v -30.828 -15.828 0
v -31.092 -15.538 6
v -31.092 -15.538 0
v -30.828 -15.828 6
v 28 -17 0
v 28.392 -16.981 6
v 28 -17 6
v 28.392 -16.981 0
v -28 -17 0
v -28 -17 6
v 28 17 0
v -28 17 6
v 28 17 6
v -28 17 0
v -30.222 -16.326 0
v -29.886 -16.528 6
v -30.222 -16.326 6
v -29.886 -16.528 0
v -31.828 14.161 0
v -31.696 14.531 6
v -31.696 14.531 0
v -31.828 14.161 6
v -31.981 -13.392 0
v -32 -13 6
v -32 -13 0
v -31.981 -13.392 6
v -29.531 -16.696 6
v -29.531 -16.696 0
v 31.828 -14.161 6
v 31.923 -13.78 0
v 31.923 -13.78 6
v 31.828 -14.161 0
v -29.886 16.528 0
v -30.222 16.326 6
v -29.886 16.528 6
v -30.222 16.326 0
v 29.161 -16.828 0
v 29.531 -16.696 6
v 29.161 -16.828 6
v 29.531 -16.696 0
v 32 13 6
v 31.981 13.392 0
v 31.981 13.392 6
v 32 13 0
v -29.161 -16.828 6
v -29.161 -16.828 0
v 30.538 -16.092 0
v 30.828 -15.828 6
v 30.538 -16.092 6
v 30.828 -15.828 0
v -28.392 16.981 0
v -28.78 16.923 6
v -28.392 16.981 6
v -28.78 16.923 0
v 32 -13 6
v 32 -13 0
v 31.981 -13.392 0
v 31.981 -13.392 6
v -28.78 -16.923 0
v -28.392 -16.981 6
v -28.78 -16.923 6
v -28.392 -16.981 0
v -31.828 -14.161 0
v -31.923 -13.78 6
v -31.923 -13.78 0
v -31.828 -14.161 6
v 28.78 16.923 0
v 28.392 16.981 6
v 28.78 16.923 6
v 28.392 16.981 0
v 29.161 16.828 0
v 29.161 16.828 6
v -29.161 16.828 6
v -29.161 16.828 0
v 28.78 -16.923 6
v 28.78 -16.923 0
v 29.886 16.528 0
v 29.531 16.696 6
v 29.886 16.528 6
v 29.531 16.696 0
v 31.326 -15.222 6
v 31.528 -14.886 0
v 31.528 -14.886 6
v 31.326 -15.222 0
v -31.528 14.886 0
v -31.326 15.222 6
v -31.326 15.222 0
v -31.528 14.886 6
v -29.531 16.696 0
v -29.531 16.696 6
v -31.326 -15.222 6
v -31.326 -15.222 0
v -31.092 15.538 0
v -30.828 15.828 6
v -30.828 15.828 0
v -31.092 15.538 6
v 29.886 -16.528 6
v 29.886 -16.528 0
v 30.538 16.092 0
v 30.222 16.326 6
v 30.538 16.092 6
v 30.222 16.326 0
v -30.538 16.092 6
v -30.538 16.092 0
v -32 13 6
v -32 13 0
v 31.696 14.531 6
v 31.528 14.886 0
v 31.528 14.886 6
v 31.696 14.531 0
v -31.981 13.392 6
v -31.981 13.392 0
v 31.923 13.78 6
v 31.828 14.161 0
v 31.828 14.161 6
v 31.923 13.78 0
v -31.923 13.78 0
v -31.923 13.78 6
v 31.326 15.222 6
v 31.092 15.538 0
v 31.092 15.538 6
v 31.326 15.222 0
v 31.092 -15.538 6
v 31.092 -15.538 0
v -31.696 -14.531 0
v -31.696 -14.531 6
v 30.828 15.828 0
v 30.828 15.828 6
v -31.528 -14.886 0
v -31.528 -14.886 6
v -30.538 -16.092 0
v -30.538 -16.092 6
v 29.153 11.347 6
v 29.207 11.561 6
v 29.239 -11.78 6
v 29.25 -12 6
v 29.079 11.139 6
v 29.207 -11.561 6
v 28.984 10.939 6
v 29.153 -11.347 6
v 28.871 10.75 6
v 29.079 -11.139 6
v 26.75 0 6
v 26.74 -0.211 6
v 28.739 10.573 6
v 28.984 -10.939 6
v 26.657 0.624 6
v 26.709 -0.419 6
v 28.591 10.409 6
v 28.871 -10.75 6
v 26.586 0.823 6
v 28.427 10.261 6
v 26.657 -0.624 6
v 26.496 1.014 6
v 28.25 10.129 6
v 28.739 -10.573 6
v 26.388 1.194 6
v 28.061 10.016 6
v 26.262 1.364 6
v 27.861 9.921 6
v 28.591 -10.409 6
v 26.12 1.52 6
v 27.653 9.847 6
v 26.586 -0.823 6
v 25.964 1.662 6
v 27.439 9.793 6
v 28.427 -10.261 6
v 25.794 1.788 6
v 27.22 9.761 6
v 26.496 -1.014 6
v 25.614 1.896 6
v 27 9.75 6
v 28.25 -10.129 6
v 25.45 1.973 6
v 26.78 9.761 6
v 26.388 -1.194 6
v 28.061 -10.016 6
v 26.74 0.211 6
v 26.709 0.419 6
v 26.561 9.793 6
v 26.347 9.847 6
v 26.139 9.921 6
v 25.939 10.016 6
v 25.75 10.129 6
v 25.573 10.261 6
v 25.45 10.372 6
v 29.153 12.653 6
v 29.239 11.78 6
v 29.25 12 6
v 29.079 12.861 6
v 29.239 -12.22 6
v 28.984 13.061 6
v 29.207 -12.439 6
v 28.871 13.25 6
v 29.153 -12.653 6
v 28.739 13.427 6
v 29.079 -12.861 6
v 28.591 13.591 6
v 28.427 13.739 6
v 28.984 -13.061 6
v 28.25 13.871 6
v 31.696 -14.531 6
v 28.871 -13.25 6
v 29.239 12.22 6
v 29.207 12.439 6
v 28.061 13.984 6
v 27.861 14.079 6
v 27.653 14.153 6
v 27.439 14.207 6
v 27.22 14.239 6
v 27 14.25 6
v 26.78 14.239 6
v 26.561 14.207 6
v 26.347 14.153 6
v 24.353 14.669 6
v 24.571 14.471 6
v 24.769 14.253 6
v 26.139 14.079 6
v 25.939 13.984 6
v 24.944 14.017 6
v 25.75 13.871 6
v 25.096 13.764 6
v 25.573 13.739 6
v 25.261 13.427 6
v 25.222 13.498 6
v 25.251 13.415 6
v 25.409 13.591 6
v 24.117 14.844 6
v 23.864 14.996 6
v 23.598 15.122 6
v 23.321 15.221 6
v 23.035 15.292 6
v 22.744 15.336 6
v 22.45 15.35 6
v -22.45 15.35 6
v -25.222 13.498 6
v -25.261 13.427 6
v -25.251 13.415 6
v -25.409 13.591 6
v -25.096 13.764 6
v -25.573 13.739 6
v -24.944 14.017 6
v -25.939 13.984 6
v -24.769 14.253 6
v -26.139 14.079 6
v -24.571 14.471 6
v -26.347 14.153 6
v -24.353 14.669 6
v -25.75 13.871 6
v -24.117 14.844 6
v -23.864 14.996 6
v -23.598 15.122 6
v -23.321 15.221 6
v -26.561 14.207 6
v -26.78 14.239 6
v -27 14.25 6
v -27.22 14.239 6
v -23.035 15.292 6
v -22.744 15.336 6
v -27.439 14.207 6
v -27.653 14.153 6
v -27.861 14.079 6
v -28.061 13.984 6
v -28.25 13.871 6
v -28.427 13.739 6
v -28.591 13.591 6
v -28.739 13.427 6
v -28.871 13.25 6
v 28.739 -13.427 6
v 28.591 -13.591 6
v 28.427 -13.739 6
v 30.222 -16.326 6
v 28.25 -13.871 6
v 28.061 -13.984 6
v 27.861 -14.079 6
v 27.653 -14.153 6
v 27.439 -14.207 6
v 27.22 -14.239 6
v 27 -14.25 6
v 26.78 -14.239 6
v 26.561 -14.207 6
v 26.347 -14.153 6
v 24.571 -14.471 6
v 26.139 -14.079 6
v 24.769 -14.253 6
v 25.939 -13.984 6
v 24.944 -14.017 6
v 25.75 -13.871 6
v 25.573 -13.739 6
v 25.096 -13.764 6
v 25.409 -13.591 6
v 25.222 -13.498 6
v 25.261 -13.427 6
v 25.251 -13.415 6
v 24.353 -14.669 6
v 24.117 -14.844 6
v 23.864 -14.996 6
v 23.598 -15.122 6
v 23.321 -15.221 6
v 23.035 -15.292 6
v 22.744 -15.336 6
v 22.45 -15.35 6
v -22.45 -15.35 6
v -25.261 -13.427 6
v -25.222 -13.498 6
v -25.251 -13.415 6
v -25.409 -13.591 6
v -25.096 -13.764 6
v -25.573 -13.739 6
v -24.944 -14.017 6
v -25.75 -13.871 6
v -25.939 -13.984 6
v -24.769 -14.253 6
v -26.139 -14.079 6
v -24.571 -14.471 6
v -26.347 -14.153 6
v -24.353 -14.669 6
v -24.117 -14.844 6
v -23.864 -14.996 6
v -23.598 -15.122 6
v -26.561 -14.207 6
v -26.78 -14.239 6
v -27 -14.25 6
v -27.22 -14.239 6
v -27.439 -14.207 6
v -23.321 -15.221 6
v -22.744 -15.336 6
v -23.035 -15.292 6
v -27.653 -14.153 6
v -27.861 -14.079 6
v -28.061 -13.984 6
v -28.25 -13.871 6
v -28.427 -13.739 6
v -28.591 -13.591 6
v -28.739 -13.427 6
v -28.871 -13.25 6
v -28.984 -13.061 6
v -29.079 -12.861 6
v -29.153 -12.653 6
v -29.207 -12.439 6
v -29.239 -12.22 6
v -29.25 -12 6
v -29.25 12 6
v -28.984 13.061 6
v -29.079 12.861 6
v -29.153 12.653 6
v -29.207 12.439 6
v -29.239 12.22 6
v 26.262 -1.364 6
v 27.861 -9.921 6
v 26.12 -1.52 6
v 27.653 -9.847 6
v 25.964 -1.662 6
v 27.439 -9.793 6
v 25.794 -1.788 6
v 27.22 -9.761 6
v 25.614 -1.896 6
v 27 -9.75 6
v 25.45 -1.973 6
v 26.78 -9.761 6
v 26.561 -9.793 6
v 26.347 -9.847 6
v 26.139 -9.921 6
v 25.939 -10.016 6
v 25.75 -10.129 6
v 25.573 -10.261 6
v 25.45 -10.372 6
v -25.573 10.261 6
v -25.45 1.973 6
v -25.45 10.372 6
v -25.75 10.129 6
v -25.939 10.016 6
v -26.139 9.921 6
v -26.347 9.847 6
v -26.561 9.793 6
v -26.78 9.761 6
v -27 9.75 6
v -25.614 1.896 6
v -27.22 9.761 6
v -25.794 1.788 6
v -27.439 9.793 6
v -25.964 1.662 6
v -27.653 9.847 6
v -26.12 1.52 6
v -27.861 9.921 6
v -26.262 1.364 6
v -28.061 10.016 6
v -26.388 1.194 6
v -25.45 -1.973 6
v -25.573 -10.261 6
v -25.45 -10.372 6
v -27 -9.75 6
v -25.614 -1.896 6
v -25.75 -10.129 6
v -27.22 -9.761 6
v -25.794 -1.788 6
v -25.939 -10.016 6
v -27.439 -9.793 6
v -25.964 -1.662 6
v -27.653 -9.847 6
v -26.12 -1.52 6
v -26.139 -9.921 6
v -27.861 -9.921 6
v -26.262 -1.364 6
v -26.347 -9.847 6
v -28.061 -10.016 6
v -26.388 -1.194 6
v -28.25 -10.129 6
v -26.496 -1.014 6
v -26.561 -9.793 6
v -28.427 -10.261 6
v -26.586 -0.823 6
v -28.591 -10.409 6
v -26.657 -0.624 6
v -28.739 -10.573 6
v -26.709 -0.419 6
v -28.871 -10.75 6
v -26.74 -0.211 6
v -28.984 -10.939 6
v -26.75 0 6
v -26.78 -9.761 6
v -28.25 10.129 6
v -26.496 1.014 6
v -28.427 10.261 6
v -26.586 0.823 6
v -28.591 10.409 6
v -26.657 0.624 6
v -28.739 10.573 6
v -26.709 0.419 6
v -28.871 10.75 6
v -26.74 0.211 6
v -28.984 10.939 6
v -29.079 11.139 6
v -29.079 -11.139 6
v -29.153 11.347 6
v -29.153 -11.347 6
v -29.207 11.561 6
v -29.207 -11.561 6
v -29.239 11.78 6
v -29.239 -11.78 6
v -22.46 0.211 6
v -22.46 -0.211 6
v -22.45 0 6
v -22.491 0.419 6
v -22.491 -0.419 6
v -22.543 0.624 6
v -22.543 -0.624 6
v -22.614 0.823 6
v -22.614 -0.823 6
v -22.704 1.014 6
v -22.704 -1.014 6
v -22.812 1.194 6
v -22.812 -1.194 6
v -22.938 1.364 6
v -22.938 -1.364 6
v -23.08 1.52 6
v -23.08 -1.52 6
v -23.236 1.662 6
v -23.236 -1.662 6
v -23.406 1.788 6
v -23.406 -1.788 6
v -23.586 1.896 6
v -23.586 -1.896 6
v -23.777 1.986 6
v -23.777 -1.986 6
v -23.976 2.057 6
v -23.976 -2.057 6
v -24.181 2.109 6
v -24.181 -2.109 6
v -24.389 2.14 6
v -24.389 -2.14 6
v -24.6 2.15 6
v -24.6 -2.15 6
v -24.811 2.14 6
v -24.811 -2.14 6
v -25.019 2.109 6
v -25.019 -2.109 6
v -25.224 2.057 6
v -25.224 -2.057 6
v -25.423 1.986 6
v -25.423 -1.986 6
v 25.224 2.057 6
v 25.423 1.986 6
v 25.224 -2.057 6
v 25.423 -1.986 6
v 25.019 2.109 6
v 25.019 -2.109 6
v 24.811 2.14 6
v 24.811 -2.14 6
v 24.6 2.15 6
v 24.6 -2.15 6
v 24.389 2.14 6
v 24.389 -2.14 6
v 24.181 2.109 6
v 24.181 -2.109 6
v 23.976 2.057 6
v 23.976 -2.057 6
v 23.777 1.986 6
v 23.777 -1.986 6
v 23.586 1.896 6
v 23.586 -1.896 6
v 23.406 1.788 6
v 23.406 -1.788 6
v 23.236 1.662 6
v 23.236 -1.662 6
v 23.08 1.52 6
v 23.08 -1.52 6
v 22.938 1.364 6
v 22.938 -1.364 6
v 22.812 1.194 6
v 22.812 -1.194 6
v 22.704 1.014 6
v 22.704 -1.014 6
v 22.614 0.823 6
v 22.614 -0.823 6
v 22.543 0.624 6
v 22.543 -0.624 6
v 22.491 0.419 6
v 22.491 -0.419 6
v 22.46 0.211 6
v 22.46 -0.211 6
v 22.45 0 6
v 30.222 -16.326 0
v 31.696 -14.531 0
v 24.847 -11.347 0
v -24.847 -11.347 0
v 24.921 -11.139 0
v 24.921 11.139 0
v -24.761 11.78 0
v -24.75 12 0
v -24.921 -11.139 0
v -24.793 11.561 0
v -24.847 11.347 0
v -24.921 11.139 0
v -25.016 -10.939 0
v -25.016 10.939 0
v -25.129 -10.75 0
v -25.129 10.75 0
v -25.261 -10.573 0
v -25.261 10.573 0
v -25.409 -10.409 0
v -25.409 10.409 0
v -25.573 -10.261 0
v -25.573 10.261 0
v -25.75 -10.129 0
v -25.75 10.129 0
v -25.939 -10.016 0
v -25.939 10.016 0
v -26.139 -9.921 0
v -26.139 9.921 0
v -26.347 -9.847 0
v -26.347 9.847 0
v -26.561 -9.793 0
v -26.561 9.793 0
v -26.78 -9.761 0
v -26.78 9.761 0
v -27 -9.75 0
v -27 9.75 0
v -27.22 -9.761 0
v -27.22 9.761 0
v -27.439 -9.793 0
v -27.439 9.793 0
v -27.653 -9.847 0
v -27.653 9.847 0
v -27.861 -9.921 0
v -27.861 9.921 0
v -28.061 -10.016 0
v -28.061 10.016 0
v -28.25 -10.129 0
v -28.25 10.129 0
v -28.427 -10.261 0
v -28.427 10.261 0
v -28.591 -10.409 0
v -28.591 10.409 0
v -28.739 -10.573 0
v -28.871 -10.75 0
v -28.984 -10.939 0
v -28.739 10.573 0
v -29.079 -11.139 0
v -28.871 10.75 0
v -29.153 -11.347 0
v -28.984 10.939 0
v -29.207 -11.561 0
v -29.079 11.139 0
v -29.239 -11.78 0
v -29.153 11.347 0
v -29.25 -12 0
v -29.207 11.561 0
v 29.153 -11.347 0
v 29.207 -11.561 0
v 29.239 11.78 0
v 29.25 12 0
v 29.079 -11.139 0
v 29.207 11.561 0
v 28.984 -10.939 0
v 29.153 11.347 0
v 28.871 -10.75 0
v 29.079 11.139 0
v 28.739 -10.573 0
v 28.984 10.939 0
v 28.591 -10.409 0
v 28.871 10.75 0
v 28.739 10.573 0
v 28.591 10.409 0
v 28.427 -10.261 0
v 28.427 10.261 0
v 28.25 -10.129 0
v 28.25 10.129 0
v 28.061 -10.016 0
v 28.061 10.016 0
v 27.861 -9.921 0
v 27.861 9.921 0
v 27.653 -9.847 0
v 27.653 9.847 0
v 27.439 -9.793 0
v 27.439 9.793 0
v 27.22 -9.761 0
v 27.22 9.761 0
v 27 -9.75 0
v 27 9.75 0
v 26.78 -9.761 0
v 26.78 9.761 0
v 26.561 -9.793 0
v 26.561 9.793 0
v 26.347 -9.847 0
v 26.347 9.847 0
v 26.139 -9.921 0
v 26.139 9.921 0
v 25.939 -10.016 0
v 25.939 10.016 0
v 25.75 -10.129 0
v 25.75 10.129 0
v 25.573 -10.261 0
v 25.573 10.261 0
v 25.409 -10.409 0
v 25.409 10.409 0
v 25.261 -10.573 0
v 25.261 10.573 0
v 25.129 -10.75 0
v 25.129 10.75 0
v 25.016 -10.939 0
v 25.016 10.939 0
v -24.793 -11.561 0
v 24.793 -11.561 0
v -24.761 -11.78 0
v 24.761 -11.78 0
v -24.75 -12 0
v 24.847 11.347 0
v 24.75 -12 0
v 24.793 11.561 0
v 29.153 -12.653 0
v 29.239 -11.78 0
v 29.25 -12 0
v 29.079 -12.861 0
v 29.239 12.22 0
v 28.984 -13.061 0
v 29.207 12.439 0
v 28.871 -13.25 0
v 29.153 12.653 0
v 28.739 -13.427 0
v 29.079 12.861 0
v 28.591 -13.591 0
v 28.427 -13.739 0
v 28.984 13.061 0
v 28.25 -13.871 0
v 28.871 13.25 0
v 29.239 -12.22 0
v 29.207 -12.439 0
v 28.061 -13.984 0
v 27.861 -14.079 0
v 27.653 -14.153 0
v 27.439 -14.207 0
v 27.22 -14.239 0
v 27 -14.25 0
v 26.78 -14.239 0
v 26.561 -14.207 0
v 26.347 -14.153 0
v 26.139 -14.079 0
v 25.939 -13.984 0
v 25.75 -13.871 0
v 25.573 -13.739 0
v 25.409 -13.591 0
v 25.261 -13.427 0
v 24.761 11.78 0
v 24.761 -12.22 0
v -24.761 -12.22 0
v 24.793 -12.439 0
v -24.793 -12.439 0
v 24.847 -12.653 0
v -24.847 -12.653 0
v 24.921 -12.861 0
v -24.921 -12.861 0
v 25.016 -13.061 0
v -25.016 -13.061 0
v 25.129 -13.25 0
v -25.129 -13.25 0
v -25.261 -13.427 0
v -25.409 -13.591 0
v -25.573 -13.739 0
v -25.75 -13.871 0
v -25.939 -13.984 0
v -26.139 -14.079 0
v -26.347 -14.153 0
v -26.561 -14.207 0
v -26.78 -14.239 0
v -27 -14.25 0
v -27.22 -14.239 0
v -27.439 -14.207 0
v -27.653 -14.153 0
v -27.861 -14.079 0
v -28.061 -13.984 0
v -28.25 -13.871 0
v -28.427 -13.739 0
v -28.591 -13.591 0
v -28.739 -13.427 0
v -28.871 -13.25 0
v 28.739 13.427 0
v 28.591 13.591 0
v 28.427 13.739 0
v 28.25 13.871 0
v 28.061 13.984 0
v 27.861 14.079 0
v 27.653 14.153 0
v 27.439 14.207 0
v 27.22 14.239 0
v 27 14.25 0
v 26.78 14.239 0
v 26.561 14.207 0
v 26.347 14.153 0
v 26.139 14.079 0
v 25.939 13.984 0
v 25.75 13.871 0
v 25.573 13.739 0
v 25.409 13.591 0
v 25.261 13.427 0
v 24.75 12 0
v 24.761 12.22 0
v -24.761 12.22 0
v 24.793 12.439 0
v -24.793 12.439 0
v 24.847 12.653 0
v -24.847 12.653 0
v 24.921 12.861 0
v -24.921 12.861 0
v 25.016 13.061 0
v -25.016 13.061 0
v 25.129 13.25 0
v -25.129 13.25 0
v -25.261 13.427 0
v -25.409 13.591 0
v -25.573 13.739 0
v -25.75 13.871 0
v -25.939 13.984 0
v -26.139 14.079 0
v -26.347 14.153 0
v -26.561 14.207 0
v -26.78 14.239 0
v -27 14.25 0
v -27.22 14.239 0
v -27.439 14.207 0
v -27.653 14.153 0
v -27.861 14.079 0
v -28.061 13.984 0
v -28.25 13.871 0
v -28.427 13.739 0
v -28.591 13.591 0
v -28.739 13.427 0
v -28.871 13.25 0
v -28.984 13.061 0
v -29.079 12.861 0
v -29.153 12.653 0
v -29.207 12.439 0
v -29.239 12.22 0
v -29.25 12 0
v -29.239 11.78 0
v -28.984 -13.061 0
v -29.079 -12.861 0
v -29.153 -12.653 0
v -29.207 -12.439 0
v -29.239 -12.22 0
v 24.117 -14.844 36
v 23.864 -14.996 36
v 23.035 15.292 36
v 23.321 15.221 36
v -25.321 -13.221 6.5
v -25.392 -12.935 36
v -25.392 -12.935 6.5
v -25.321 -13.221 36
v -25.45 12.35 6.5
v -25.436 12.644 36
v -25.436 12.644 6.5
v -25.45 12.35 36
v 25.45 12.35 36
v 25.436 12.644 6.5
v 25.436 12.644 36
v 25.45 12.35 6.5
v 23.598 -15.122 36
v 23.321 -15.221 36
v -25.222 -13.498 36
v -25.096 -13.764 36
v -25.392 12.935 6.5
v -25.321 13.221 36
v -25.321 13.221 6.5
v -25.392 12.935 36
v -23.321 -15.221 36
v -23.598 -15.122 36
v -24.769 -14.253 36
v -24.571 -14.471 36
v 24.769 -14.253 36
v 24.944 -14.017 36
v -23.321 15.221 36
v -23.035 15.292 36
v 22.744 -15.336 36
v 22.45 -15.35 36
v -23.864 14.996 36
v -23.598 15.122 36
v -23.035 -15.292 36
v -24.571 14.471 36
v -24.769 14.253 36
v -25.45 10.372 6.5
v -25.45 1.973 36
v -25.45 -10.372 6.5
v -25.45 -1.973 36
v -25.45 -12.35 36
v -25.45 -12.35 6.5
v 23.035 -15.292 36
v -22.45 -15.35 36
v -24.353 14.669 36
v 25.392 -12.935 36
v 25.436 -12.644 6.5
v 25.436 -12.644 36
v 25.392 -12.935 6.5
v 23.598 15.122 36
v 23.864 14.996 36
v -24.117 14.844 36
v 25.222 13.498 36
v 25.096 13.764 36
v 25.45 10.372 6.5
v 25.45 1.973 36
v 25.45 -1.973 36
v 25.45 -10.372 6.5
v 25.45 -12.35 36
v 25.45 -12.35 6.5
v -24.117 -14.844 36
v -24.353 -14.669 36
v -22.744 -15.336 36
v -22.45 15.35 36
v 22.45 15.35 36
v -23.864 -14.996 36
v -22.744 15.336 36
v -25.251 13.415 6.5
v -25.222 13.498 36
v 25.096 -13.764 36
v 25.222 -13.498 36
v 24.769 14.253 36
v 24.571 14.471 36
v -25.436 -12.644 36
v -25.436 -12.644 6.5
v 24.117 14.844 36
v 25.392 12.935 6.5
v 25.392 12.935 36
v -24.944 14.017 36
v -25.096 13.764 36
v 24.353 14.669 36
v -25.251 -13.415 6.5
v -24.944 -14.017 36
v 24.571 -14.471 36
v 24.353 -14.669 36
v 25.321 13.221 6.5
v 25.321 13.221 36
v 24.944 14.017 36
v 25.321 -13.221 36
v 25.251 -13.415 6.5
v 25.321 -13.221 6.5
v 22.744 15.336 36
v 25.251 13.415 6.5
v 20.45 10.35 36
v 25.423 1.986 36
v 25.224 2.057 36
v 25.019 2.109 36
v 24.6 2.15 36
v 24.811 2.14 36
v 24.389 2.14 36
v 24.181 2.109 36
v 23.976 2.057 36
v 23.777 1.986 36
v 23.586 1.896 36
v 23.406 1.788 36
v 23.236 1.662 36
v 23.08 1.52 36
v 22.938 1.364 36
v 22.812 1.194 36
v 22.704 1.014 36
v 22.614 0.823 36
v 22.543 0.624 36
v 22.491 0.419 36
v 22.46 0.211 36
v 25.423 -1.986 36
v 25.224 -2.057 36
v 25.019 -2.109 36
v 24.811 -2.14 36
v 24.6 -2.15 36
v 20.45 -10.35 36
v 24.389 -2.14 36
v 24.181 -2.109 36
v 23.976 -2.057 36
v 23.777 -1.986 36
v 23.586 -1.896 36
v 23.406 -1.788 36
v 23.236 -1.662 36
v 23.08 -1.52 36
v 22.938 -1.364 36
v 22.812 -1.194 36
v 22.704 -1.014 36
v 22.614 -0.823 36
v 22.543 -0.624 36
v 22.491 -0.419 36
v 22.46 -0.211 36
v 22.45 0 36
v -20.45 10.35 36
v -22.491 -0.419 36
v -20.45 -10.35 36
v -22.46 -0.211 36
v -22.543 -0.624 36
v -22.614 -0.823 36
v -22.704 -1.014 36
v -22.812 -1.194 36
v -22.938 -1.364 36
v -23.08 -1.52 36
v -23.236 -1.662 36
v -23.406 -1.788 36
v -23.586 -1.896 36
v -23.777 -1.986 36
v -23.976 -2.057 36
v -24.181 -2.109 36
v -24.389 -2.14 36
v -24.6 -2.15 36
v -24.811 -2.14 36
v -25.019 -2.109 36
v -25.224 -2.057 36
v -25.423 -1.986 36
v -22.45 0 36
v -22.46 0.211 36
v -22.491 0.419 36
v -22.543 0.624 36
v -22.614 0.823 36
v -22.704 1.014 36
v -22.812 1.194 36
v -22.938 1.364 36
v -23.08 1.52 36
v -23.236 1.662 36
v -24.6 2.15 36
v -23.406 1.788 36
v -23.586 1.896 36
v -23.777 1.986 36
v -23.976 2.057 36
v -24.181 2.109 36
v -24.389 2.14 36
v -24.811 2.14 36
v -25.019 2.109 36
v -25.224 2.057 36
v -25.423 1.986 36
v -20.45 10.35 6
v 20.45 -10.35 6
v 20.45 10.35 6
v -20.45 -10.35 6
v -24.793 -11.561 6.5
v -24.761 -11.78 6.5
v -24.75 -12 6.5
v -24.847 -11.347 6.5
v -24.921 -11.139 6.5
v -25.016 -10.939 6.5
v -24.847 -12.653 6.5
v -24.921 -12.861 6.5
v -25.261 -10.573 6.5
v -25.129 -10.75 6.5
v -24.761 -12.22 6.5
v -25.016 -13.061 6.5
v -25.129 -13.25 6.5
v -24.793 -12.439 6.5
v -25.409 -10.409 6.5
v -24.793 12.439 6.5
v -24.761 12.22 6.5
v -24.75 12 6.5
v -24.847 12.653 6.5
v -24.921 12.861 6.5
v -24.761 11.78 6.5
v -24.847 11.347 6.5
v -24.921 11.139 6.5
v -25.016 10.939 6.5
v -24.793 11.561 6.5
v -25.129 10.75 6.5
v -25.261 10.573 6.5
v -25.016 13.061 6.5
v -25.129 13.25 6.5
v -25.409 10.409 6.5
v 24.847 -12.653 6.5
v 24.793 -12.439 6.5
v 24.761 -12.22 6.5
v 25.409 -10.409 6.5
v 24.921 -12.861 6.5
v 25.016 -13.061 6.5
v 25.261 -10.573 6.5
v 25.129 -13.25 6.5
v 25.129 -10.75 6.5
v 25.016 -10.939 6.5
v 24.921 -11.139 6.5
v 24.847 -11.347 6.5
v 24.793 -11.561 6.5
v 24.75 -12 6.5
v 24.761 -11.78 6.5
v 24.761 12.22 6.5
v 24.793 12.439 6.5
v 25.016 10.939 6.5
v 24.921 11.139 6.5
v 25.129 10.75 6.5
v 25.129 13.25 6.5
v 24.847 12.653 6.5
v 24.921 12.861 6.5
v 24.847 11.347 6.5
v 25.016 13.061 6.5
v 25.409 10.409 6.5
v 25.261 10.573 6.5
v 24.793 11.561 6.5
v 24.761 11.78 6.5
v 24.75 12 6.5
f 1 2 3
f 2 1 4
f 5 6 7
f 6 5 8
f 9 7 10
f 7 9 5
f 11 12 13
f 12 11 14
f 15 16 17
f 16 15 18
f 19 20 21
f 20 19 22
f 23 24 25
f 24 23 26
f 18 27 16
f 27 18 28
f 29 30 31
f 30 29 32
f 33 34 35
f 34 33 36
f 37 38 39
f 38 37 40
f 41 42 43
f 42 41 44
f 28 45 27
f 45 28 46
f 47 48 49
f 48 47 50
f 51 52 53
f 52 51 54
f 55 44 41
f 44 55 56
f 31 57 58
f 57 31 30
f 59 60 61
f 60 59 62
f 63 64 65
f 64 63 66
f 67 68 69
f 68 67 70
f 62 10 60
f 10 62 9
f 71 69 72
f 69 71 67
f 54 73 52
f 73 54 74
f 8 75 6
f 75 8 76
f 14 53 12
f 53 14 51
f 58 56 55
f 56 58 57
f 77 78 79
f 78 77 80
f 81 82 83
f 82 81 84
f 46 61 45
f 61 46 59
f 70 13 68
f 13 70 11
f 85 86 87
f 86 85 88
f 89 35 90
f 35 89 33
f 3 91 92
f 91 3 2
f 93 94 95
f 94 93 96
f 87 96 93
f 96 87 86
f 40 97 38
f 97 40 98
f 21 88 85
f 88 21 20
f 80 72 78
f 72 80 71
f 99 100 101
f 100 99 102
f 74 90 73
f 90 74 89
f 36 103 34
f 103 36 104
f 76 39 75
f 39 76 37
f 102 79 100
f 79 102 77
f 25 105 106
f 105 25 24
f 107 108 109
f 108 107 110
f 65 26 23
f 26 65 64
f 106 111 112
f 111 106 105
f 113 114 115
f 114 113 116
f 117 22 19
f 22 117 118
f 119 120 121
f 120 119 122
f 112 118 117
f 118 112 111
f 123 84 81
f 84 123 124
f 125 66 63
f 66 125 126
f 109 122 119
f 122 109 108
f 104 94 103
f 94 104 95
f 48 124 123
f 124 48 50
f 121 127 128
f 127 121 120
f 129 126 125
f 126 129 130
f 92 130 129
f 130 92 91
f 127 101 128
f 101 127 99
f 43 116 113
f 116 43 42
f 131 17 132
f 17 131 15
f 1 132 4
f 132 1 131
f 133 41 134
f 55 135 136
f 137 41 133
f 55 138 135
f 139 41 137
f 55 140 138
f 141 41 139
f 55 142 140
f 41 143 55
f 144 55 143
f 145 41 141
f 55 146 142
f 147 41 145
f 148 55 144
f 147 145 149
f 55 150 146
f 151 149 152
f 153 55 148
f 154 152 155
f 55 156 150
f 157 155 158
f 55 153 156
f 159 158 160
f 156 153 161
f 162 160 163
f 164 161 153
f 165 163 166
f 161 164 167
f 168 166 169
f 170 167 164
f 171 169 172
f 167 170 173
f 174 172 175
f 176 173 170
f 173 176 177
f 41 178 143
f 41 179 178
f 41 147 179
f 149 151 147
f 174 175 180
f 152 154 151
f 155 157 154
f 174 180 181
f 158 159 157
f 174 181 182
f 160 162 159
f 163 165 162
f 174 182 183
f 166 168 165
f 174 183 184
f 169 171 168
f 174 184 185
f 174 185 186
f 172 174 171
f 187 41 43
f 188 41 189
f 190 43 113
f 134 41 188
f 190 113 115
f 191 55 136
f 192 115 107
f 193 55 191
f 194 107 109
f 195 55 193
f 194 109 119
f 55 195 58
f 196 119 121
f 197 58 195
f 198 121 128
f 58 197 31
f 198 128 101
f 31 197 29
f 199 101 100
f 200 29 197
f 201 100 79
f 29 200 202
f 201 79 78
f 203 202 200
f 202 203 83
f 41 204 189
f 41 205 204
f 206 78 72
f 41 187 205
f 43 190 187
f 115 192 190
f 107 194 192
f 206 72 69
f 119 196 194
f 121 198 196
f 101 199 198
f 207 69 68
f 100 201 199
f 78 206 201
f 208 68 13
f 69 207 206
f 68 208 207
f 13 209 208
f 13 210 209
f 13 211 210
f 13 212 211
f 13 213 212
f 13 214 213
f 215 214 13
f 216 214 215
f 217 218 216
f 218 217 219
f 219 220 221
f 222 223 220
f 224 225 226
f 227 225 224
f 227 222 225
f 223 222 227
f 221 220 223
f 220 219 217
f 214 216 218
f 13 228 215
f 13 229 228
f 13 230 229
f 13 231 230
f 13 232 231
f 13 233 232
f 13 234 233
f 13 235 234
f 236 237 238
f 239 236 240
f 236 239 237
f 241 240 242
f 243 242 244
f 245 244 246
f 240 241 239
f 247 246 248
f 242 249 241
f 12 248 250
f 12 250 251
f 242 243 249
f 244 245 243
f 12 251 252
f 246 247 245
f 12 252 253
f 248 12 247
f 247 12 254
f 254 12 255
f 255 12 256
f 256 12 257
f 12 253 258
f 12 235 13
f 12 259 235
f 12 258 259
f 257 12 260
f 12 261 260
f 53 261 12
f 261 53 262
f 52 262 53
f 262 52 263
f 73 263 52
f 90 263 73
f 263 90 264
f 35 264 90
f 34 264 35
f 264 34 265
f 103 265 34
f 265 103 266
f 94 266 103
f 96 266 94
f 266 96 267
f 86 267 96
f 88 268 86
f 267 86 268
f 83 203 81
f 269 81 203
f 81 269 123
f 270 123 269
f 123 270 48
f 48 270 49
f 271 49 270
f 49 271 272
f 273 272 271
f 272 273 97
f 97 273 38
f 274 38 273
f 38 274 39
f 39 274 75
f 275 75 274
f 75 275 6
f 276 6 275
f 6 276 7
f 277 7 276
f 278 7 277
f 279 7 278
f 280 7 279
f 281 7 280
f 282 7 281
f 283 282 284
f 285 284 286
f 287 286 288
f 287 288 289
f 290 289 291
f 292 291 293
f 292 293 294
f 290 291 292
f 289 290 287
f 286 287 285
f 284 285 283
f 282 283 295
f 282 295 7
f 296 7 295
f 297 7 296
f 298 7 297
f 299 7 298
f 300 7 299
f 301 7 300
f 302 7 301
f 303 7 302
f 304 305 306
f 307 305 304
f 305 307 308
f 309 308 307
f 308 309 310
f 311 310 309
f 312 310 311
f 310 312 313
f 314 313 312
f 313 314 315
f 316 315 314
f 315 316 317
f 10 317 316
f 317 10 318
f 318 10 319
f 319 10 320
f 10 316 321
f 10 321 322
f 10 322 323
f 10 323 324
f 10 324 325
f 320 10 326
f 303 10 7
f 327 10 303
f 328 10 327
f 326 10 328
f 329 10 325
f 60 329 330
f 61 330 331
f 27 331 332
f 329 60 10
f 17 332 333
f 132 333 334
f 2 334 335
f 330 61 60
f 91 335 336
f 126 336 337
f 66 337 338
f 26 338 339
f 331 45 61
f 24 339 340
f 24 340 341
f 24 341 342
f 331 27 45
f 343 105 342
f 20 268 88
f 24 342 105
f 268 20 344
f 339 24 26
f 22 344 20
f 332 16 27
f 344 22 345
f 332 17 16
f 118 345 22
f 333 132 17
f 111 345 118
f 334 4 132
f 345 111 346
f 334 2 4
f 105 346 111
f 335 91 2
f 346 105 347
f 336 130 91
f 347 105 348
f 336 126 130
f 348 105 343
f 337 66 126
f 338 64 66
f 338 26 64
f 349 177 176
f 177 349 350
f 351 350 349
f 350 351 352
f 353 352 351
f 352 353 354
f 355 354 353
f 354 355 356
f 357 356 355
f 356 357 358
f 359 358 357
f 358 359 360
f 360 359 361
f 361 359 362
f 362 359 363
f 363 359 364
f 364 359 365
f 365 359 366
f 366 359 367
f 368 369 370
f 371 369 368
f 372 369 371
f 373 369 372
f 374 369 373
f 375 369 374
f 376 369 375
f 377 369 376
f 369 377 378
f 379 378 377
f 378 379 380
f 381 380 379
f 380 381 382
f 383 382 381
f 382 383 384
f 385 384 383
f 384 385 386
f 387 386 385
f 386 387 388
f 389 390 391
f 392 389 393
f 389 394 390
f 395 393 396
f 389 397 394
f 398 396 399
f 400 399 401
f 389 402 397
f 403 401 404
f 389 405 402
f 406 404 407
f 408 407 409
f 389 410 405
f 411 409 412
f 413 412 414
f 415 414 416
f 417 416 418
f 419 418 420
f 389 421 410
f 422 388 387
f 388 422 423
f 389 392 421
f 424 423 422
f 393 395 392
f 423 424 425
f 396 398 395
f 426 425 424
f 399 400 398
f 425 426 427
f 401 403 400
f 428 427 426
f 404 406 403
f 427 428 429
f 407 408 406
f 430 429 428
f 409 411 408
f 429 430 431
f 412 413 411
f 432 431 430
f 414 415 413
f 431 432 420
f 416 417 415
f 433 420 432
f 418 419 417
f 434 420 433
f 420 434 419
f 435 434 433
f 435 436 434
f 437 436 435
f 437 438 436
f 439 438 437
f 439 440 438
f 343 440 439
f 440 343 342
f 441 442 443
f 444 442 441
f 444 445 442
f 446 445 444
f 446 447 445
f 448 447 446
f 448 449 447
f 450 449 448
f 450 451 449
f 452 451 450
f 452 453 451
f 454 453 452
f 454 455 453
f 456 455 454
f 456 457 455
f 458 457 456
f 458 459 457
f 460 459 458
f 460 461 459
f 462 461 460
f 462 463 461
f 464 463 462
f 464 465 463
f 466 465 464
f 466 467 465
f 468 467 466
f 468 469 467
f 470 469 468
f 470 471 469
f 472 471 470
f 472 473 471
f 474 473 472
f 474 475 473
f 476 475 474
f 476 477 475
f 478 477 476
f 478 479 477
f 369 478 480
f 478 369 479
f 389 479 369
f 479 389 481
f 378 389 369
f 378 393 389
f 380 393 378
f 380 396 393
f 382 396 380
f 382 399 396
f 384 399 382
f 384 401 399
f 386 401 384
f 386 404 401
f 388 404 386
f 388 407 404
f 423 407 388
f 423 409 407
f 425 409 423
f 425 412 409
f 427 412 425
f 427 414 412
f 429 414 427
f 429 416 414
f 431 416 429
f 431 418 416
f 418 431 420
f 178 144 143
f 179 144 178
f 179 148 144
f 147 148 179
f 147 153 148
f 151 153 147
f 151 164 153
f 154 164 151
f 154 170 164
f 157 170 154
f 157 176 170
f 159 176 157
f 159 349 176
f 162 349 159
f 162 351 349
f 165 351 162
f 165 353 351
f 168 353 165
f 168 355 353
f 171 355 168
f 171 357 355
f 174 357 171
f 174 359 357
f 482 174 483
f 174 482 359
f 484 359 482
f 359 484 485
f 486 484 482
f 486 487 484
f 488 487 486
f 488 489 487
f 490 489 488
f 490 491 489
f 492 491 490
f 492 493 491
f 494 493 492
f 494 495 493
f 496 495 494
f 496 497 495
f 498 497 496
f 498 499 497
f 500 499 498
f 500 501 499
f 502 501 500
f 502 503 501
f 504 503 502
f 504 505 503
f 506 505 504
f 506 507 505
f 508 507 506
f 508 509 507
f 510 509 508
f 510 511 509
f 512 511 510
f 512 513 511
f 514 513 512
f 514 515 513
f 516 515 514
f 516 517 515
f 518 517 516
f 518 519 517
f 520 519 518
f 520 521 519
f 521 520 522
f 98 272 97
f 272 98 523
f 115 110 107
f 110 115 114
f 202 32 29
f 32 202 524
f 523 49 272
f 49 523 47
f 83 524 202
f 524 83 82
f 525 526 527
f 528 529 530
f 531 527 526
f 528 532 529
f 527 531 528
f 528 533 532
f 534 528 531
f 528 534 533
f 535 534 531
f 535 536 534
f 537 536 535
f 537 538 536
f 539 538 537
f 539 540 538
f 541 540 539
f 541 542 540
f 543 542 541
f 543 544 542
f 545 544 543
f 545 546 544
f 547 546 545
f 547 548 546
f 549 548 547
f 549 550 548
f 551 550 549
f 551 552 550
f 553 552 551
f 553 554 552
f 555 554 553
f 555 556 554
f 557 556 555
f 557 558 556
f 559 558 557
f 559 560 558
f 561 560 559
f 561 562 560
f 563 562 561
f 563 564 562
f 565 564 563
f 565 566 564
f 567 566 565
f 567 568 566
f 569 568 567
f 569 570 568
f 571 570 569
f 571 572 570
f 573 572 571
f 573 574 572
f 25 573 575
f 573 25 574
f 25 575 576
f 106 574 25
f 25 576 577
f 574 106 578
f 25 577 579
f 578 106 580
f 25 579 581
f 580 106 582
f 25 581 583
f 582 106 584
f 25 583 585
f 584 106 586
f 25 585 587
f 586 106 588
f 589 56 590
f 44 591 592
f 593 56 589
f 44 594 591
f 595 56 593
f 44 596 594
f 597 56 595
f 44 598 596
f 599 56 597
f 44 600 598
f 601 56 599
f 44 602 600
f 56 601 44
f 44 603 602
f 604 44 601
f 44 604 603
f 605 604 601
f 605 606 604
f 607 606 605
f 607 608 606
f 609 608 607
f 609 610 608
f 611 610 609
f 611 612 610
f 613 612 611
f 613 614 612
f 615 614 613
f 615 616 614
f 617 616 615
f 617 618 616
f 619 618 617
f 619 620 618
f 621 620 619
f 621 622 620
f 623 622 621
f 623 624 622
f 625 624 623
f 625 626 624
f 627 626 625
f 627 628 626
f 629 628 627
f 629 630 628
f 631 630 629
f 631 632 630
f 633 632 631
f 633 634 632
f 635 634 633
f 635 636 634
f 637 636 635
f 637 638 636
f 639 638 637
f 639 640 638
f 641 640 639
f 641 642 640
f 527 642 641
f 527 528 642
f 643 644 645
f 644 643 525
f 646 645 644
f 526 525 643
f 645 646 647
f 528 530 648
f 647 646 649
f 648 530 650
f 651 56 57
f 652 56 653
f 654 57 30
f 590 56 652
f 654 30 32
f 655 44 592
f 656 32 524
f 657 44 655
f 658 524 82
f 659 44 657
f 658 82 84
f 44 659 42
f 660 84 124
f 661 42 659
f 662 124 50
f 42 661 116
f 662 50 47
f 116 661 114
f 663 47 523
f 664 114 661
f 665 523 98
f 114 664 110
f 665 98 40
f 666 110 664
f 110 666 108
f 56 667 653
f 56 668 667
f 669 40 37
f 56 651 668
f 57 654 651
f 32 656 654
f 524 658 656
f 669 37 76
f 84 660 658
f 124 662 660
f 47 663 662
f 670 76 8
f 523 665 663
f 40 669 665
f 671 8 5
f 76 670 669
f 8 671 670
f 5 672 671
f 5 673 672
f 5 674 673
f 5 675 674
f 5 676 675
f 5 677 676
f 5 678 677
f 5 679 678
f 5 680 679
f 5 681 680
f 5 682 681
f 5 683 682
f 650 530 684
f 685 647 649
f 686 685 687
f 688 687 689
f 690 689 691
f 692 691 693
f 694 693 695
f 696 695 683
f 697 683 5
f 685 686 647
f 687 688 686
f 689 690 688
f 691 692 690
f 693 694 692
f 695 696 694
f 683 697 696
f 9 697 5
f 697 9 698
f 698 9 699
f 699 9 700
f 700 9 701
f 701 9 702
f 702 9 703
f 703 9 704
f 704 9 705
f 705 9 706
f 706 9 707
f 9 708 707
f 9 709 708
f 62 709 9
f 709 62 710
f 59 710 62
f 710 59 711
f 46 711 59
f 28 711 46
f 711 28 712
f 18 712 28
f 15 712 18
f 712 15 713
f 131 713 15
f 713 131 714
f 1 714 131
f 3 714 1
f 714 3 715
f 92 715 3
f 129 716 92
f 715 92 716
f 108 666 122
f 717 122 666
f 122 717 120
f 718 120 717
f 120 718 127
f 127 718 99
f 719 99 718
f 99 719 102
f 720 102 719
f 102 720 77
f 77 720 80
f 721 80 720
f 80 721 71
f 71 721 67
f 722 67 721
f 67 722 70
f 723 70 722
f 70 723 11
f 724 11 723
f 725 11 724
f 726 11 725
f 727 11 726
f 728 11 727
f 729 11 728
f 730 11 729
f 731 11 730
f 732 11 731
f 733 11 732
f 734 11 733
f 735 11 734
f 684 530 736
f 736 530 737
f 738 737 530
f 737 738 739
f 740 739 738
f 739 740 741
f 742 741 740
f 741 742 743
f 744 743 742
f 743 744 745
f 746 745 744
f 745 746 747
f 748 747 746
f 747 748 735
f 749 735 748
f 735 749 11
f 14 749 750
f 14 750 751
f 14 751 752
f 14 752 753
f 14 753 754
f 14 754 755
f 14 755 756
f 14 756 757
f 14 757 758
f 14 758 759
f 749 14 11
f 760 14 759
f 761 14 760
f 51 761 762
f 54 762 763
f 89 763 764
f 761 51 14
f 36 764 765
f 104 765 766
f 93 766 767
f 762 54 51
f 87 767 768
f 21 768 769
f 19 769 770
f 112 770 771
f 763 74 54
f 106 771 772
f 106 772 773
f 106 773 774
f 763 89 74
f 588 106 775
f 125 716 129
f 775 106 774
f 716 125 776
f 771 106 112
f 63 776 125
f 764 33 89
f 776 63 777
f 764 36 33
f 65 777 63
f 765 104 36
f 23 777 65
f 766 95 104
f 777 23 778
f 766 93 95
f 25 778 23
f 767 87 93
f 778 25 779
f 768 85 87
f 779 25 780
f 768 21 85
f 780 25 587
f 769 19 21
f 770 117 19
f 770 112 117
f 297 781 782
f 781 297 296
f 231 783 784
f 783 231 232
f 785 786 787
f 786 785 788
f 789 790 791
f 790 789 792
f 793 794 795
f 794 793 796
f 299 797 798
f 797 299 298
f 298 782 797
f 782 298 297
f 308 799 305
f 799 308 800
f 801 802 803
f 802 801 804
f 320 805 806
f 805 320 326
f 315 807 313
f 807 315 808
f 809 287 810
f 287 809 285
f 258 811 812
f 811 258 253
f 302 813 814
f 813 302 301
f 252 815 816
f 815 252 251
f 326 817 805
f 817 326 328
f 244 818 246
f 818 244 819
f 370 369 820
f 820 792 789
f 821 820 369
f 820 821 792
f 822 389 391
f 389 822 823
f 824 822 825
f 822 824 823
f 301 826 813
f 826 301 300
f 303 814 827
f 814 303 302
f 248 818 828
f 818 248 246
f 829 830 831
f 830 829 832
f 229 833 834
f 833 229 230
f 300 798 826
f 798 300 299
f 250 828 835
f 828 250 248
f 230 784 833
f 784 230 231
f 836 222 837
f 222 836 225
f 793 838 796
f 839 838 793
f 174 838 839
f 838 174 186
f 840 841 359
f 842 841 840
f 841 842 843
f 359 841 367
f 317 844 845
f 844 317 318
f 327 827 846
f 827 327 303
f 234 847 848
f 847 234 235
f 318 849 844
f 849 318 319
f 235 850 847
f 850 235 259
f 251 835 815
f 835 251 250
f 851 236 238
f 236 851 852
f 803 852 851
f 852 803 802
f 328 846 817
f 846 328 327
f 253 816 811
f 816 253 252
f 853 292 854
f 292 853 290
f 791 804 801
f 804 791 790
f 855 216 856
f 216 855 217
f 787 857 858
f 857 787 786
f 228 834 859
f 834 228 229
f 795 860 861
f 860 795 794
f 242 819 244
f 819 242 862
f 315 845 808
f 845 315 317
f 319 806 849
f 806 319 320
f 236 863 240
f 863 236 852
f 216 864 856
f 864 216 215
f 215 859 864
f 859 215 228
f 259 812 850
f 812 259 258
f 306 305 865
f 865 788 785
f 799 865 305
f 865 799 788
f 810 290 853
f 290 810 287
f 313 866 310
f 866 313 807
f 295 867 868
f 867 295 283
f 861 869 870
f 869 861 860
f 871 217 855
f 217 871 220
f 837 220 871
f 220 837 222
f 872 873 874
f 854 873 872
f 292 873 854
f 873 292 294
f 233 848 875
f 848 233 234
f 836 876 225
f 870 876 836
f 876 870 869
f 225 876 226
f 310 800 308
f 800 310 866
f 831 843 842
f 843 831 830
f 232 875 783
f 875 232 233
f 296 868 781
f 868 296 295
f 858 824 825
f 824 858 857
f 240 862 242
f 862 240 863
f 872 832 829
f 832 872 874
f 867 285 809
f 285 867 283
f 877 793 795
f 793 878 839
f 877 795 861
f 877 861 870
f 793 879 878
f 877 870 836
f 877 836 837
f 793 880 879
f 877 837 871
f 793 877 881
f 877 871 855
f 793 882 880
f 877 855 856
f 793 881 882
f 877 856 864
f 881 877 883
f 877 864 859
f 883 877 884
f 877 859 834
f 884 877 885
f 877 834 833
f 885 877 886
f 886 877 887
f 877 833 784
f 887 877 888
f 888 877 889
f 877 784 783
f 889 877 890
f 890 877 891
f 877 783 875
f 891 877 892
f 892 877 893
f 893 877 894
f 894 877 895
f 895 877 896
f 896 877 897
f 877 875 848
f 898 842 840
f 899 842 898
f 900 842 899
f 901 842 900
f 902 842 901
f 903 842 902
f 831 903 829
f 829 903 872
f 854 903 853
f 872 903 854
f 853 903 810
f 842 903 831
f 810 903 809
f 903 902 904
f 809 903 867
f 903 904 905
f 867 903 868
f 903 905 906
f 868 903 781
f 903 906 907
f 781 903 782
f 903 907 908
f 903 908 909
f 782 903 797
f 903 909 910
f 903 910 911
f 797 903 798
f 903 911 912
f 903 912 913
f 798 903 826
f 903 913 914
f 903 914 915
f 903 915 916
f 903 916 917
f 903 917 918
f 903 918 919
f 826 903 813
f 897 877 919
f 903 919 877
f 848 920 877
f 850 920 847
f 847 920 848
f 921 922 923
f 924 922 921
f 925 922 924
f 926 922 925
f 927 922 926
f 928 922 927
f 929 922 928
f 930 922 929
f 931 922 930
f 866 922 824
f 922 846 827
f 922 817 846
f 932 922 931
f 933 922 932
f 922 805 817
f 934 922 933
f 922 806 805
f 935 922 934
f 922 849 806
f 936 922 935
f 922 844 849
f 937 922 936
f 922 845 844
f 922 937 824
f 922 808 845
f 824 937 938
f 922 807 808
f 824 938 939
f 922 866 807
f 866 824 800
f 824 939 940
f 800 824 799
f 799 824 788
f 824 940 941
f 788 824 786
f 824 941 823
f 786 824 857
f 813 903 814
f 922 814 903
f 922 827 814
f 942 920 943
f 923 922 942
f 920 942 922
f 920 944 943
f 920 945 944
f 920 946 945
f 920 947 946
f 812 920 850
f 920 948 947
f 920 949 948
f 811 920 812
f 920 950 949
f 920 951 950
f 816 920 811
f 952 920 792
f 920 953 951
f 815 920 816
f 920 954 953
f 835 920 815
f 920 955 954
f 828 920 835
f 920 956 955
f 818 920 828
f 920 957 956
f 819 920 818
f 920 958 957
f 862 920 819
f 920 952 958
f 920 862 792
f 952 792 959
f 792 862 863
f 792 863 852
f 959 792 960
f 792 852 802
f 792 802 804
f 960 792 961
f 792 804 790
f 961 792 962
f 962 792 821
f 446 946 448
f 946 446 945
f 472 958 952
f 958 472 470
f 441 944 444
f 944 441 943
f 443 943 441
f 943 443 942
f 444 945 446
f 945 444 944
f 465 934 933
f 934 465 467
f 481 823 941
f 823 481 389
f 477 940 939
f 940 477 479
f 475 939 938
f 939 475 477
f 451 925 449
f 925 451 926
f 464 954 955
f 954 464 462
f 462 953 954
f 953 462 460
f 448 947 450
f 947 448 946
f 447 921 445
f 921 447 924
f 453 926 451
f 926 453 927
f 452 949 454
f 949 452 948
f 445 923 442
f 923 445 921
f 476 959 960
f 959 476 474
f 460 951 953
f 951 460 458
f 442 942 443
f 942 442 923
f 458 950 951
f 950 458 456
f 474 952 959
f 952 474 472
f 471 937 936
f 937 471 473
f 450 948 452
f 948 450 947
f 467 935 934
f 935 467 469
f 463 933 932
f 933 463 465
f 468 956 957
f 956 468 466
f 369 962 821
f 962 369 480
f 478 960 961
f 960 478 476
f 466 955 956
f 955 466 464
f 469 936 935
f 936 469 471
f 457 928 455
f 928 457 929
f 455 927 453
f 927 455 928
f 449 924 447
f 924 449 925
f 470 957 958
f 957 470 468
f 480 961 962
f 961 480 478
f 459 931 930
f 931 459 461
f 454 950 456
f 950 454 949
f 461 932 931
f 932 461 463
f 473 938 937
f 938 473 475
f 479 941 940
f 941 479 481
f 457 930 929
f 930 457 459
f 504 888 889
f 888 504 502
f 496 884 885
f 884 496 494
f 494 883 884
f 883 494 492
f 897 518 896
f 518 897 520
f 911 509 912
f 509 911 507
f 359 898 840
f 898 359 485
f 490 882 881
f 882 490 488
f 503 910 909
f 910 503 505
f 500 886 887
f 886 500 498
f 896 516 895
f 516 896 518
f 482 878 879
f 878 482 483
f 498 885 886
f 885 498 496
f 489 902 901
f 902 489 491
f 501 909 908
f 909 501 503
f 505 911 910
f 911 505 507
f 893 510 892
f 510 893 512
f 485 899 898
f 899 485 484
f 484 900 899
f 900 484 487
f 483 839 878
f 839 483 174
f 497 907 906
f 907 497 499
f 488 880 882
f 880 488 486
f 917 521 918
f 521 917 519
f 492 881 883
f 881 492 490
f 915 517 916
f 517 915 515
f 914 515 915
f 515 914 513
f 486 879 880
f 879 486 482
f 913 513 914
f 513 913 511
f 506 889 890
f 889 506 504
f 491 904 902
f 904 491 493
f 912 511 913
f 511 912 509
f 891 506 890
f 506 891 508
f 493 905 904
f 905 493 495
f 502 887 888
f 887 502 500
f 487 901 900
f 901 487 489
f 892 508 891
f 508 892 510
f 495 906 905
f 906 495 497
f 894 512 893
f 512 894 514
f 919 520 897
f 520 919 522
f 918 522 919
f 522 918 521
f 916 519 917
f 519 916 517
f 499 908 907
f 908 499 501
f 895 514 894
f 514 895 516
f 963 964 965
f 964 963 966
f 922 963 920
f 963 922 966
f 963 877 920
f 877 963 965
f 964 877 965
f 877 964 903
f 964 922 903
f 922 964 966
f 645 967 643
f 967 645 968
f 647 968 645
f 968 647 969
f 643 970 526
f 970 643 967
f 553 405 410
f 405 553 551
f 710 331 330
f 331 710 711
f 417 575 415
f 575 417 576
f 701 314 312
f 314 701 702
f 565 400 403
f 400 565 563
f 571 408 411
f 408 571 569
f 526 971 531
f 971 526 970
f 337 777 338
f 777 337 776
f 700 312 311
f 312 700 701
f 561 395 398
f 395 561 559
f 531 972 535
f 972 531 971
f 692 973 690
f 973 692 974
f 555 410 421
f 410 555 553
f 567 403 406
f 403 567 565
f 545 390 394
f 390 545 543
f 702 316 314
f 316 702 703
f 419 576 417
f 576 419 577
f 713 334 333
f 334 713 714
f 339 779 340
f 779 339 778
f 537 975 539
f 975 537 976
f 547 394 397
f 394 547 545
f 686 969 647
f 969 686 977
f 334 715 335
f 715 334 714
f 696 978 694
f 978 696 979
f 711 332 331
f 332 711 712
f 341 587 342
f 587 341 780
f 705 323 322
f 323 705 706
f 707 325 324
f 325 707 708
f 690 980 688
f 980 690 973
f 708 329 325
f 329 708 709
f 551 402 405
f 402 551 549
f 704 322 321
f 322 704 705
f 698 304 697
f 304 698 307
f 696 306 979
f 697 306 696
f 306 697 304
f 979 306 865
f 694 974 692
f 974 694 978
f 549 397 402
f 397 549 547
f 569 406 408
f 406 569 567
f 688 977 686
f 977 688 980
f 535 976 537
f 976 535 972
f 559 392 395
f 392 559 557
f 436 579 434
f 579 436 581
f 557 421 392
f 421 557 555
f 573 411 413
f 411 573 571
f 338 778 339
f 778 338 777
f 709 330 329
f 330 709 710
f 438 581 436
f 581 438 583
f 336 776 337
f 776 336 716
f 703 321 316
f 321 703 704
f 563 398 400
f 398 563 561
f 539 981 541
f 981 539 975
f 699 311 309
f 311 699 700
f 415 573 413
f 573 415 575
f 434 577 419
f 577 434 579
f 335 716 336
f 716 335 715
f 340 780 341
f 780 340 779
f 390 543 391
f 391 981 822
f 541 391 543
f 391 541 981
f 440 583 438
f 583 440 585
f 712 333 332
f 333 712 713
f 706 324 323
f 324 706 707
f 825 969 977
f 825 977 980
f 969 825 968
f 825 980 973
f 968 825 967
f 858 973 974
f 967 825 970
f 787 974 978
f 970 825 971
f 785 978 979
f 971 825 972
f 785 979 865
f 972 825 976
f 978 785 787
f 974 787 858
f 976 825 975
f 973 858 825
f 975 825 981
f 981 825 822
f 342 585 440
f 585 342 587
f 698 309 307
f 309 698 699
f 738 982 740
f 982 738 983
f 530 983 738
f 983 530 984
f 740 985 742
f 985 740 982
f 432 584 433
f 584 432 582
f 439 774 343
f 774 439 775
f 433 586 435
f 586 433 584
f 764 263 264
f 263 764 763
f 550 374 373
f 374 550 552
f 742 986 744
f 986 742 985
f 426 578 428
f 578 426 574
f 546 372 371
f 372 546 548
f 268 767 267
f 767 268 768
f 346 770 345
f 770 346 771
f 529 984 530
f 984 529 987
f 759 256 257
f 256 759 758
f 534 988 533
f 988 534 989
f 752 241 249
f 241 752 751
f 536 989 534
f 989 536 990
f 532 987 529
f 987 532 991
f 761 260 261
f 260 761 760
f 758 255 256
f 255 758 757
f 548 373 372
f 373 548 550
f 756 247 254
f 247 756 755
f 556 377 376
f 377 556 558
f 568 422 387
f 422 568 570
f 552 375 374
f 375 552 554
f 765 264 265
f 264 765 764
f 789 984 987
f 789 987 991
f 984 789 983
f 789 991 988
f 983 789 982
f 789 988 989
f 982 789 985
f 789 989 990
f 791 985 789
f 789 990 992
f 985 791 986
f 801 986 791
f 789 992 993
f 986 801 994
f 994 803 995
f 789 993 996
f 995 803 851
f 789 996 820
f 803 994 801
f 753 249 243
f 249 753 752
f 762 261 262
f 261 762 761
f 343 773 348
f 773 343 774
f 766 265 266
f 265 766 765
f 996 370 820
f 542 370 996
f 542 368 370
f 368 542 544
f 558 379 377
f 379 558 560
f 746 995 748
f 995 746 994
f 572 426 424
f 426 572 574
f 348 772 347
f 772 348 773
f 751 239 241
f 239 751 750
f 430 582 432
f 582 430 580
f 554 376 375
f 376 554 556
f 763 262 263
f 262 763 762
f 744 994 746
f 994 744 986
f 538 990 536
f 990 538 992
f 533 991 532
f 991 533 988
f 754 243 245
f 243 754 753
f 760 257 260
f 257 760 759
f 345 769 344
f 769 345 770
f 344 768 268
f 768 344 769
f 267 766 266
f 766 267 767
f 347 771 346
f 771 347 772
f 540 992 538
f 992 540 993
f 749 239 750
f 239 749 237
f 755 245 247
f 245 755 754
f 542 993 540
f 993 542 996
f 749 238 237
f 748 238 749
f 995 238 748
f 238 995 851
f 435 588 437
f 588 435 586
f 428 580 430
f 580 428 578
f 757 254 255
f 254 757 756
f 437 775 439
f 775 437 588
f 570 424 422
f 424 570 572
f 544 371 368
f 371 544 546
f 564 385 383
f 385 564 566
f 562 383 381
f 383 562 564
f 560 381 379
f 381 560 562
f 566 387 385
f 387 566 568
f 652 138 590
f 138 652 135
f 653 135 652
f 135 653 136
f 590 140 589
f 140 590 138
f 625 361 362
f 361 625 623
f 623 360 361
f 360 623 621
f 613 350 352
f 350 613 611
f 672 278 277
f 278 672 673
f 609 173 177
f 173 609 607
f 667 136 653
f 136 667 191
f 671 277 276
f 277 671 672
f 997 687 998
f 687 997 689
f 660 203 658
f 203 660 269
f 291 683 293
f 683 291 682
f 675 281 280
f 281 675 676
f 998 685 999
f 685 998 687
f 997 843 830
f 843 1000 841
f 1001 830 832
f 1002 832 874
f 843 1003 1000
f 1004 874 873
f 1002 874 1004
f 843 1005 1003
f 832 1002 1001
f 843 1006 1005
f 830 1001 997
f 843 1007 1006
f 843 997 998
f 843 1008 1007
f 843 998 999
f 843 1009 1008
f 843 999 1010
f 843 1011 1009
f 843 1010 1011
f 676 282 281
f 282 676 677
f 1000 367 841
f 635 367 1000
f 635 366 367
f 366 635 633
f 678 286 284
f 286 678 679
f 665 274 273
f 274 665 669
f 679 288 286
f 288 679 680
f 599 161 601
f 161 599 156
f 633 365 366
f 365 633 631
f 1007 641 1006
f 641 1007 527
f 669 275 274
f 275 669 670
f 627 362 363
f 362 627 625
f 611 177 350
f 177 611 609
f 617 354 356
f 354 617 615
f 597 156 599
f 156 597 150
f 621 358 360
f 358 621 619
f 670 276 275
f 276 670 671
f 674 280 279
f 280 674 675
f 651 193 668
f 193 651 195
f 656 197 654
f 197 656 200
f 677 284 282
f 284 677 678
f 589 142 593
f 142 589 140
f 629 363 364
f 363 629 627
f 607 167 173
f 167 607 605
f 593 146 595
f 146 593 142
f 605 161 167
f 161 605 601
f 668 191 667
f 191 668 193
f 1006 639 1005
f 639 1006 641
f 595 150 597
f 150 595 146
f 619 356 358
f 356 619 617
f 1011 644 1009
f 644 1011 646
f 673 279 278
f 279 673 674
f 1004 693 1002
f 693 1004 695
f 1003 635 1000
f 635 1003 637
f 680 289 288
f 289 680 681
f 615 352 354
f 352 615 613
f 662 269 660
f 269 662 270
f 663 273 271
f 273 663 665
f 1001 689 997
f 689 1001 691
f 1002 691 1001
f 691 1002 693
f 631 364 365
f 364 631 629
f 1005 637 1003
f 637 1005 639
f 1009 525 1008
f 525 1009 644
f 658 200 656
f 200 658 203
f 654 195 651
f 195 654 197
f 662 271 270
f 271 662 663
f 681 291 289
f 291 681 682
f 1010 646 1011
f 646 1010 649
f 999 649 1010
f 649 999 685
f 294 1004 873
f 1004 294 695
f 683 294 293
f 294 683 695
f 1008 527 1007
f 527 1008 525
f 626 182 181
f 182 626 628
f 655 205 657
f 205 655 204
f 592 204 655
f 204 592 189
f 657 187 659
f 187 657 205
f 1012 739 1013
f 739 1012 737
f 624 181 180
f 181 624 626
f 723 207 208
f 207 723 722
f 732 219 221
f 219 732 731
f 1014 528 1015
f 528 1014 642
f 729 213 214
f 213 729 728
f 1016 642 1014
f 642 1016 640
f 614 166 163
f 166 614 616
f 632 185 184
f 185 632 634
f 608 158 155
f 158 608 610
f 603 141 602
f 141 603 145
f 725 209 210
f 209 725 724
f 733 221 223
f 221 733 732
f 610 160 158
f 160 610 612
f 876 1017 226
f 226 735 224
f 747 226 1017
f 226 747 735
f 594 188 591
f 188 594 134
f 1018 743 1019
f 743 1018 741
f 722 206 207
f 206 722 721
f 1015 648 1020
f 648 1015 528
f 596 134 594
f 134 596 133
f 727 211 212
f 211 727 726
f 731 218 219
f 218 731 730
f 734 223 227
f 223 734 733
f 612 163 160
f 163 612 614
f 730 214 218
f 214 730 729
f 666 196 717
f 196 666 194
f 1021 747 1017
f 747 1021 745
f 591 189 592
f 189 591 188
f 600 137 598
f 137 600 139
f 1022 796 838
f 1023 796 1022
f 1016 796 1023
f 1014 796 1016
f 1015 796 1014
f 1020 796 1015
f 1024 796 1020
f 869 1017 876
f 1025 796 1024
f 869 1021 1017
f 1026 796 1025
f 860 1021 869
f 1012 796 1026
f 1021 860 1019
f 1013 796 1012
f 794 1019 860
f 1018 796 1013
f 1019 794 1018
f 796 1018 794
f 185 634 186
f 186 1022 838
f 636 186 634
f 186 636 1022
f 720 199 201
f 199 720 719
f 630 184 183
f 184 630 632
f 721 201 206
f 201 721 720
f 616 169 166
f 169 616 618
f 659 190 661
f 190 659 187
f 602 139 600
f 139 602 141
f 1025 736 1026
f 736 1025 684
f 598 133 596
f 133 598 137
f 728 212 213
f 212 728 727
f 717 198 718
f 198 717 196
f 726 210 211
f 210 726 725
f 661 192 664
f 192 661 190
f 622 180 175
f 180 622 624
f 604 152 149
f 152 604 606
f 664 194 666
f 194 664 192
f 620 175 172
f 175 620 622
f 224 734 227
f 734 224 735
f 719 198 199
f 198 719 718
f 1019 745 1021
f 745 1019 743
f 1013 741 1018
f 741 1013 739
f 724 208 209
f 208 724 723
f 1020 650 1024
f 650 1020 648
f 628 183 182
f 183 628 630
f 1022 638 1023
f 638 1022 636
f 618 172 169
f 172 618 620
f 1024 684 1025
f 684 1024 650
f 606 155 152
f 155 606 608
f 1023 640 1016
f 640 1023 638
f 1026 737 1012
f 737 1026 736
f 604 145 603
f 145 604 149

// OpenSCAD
// file: common.scad
// KARAKURI shared parameters and helpers
// All dimensions in millimetres. Holes are printed undersize-safe:
// M3 through 3.4, M4 through 4.5, M2.5 through 2.9, quarter-inch 6.6.

$fn = 64;

m2_5 = 2.9;
m3 = 3.4;
m4 = 4.5;
quarter_inch = 6.6;

module rounded_plate(x, y, t, r = 8) {
    linear_extrude(t)
        offset(r = r) offset(delta = -r)
            square([x, y], center = true);
}

module hole(d, h) {
    translate([0, 0, -0.5]) cylinder(d = d, h = h + 1);
}

module slot(d, len, h) {
    translate([0, 0, -0.5])
        linear_extrude(h + 1)
            hull() {
                translate([-len / 2, 0]) circle(d = d);
                translate([ len / 2, 0]) circle(d = d);
            }
}

module four_holes(dx, dy, d, h) {
    for (sx = [-1, 1], sy = [-1, 1])
        translate([sx * dx / 2, sy * dy / 2, 0]) hole(d, h);
}
// file: servo_common.scad
// Shared pocket and horn geometry for standard size hobby servos
// (DS3225, MG996R class: 40.7 x 20.5 body, 49 mm tab hole spacing).

include <common.scad>

servo_l = 40.9;
servo_w = 20.7;
servo_tab_span = 49.2;
servo_tab_hole = 4.3;
servo_horn_circle = 21;   // round horn diameter
horn_screw = 2.6;

module servo_pocket(depth = 26) {
    // Cut this from a solid to seat a servo, tabs resting on the face
    translate([0, 0, -depth]) linear_extrude(depth + 0.01)
        square([servo_l, servo_w], center = true);
    for (x = [-servo_tab_span / 2, servo_tab_span / 2])
        translate([x, 0, -depth]) cylinder(d = servo_tab_hole, h = depth + 10);
}

module horn_holes(t) {
    // Centre screw plus 4 horn screws on a 14 mm circle
    hole(3.2, t);
    for (a = [0, 90, 180, 270])
        rotate([0, 0, a]) translate([7, 0, 0]) hole(horn_screw, t);
}
// main file
// Hip mount: bolts a coxa servo vertically at a deck corner so its
// output shaft points down. Print 4. Flat side down, no supports.
include <servo_common.scad>

module leg_hip_mount() {
    difference() {
        union() {
            rounded_plate(64, 34, 6, 4);             // deck plate
            translate([0, 0, 6]) linear_extrude(30)   // servo box
                offset(r = 3) offset(delta = -3)
                    square([servo_l + 10, servo_w + 10], center = true);
        }
        translate([0, 0, 36]) servo_pocket(30);
        four_holes(54, 24, m4, 6);
    }
}
leg_hip_mount();
